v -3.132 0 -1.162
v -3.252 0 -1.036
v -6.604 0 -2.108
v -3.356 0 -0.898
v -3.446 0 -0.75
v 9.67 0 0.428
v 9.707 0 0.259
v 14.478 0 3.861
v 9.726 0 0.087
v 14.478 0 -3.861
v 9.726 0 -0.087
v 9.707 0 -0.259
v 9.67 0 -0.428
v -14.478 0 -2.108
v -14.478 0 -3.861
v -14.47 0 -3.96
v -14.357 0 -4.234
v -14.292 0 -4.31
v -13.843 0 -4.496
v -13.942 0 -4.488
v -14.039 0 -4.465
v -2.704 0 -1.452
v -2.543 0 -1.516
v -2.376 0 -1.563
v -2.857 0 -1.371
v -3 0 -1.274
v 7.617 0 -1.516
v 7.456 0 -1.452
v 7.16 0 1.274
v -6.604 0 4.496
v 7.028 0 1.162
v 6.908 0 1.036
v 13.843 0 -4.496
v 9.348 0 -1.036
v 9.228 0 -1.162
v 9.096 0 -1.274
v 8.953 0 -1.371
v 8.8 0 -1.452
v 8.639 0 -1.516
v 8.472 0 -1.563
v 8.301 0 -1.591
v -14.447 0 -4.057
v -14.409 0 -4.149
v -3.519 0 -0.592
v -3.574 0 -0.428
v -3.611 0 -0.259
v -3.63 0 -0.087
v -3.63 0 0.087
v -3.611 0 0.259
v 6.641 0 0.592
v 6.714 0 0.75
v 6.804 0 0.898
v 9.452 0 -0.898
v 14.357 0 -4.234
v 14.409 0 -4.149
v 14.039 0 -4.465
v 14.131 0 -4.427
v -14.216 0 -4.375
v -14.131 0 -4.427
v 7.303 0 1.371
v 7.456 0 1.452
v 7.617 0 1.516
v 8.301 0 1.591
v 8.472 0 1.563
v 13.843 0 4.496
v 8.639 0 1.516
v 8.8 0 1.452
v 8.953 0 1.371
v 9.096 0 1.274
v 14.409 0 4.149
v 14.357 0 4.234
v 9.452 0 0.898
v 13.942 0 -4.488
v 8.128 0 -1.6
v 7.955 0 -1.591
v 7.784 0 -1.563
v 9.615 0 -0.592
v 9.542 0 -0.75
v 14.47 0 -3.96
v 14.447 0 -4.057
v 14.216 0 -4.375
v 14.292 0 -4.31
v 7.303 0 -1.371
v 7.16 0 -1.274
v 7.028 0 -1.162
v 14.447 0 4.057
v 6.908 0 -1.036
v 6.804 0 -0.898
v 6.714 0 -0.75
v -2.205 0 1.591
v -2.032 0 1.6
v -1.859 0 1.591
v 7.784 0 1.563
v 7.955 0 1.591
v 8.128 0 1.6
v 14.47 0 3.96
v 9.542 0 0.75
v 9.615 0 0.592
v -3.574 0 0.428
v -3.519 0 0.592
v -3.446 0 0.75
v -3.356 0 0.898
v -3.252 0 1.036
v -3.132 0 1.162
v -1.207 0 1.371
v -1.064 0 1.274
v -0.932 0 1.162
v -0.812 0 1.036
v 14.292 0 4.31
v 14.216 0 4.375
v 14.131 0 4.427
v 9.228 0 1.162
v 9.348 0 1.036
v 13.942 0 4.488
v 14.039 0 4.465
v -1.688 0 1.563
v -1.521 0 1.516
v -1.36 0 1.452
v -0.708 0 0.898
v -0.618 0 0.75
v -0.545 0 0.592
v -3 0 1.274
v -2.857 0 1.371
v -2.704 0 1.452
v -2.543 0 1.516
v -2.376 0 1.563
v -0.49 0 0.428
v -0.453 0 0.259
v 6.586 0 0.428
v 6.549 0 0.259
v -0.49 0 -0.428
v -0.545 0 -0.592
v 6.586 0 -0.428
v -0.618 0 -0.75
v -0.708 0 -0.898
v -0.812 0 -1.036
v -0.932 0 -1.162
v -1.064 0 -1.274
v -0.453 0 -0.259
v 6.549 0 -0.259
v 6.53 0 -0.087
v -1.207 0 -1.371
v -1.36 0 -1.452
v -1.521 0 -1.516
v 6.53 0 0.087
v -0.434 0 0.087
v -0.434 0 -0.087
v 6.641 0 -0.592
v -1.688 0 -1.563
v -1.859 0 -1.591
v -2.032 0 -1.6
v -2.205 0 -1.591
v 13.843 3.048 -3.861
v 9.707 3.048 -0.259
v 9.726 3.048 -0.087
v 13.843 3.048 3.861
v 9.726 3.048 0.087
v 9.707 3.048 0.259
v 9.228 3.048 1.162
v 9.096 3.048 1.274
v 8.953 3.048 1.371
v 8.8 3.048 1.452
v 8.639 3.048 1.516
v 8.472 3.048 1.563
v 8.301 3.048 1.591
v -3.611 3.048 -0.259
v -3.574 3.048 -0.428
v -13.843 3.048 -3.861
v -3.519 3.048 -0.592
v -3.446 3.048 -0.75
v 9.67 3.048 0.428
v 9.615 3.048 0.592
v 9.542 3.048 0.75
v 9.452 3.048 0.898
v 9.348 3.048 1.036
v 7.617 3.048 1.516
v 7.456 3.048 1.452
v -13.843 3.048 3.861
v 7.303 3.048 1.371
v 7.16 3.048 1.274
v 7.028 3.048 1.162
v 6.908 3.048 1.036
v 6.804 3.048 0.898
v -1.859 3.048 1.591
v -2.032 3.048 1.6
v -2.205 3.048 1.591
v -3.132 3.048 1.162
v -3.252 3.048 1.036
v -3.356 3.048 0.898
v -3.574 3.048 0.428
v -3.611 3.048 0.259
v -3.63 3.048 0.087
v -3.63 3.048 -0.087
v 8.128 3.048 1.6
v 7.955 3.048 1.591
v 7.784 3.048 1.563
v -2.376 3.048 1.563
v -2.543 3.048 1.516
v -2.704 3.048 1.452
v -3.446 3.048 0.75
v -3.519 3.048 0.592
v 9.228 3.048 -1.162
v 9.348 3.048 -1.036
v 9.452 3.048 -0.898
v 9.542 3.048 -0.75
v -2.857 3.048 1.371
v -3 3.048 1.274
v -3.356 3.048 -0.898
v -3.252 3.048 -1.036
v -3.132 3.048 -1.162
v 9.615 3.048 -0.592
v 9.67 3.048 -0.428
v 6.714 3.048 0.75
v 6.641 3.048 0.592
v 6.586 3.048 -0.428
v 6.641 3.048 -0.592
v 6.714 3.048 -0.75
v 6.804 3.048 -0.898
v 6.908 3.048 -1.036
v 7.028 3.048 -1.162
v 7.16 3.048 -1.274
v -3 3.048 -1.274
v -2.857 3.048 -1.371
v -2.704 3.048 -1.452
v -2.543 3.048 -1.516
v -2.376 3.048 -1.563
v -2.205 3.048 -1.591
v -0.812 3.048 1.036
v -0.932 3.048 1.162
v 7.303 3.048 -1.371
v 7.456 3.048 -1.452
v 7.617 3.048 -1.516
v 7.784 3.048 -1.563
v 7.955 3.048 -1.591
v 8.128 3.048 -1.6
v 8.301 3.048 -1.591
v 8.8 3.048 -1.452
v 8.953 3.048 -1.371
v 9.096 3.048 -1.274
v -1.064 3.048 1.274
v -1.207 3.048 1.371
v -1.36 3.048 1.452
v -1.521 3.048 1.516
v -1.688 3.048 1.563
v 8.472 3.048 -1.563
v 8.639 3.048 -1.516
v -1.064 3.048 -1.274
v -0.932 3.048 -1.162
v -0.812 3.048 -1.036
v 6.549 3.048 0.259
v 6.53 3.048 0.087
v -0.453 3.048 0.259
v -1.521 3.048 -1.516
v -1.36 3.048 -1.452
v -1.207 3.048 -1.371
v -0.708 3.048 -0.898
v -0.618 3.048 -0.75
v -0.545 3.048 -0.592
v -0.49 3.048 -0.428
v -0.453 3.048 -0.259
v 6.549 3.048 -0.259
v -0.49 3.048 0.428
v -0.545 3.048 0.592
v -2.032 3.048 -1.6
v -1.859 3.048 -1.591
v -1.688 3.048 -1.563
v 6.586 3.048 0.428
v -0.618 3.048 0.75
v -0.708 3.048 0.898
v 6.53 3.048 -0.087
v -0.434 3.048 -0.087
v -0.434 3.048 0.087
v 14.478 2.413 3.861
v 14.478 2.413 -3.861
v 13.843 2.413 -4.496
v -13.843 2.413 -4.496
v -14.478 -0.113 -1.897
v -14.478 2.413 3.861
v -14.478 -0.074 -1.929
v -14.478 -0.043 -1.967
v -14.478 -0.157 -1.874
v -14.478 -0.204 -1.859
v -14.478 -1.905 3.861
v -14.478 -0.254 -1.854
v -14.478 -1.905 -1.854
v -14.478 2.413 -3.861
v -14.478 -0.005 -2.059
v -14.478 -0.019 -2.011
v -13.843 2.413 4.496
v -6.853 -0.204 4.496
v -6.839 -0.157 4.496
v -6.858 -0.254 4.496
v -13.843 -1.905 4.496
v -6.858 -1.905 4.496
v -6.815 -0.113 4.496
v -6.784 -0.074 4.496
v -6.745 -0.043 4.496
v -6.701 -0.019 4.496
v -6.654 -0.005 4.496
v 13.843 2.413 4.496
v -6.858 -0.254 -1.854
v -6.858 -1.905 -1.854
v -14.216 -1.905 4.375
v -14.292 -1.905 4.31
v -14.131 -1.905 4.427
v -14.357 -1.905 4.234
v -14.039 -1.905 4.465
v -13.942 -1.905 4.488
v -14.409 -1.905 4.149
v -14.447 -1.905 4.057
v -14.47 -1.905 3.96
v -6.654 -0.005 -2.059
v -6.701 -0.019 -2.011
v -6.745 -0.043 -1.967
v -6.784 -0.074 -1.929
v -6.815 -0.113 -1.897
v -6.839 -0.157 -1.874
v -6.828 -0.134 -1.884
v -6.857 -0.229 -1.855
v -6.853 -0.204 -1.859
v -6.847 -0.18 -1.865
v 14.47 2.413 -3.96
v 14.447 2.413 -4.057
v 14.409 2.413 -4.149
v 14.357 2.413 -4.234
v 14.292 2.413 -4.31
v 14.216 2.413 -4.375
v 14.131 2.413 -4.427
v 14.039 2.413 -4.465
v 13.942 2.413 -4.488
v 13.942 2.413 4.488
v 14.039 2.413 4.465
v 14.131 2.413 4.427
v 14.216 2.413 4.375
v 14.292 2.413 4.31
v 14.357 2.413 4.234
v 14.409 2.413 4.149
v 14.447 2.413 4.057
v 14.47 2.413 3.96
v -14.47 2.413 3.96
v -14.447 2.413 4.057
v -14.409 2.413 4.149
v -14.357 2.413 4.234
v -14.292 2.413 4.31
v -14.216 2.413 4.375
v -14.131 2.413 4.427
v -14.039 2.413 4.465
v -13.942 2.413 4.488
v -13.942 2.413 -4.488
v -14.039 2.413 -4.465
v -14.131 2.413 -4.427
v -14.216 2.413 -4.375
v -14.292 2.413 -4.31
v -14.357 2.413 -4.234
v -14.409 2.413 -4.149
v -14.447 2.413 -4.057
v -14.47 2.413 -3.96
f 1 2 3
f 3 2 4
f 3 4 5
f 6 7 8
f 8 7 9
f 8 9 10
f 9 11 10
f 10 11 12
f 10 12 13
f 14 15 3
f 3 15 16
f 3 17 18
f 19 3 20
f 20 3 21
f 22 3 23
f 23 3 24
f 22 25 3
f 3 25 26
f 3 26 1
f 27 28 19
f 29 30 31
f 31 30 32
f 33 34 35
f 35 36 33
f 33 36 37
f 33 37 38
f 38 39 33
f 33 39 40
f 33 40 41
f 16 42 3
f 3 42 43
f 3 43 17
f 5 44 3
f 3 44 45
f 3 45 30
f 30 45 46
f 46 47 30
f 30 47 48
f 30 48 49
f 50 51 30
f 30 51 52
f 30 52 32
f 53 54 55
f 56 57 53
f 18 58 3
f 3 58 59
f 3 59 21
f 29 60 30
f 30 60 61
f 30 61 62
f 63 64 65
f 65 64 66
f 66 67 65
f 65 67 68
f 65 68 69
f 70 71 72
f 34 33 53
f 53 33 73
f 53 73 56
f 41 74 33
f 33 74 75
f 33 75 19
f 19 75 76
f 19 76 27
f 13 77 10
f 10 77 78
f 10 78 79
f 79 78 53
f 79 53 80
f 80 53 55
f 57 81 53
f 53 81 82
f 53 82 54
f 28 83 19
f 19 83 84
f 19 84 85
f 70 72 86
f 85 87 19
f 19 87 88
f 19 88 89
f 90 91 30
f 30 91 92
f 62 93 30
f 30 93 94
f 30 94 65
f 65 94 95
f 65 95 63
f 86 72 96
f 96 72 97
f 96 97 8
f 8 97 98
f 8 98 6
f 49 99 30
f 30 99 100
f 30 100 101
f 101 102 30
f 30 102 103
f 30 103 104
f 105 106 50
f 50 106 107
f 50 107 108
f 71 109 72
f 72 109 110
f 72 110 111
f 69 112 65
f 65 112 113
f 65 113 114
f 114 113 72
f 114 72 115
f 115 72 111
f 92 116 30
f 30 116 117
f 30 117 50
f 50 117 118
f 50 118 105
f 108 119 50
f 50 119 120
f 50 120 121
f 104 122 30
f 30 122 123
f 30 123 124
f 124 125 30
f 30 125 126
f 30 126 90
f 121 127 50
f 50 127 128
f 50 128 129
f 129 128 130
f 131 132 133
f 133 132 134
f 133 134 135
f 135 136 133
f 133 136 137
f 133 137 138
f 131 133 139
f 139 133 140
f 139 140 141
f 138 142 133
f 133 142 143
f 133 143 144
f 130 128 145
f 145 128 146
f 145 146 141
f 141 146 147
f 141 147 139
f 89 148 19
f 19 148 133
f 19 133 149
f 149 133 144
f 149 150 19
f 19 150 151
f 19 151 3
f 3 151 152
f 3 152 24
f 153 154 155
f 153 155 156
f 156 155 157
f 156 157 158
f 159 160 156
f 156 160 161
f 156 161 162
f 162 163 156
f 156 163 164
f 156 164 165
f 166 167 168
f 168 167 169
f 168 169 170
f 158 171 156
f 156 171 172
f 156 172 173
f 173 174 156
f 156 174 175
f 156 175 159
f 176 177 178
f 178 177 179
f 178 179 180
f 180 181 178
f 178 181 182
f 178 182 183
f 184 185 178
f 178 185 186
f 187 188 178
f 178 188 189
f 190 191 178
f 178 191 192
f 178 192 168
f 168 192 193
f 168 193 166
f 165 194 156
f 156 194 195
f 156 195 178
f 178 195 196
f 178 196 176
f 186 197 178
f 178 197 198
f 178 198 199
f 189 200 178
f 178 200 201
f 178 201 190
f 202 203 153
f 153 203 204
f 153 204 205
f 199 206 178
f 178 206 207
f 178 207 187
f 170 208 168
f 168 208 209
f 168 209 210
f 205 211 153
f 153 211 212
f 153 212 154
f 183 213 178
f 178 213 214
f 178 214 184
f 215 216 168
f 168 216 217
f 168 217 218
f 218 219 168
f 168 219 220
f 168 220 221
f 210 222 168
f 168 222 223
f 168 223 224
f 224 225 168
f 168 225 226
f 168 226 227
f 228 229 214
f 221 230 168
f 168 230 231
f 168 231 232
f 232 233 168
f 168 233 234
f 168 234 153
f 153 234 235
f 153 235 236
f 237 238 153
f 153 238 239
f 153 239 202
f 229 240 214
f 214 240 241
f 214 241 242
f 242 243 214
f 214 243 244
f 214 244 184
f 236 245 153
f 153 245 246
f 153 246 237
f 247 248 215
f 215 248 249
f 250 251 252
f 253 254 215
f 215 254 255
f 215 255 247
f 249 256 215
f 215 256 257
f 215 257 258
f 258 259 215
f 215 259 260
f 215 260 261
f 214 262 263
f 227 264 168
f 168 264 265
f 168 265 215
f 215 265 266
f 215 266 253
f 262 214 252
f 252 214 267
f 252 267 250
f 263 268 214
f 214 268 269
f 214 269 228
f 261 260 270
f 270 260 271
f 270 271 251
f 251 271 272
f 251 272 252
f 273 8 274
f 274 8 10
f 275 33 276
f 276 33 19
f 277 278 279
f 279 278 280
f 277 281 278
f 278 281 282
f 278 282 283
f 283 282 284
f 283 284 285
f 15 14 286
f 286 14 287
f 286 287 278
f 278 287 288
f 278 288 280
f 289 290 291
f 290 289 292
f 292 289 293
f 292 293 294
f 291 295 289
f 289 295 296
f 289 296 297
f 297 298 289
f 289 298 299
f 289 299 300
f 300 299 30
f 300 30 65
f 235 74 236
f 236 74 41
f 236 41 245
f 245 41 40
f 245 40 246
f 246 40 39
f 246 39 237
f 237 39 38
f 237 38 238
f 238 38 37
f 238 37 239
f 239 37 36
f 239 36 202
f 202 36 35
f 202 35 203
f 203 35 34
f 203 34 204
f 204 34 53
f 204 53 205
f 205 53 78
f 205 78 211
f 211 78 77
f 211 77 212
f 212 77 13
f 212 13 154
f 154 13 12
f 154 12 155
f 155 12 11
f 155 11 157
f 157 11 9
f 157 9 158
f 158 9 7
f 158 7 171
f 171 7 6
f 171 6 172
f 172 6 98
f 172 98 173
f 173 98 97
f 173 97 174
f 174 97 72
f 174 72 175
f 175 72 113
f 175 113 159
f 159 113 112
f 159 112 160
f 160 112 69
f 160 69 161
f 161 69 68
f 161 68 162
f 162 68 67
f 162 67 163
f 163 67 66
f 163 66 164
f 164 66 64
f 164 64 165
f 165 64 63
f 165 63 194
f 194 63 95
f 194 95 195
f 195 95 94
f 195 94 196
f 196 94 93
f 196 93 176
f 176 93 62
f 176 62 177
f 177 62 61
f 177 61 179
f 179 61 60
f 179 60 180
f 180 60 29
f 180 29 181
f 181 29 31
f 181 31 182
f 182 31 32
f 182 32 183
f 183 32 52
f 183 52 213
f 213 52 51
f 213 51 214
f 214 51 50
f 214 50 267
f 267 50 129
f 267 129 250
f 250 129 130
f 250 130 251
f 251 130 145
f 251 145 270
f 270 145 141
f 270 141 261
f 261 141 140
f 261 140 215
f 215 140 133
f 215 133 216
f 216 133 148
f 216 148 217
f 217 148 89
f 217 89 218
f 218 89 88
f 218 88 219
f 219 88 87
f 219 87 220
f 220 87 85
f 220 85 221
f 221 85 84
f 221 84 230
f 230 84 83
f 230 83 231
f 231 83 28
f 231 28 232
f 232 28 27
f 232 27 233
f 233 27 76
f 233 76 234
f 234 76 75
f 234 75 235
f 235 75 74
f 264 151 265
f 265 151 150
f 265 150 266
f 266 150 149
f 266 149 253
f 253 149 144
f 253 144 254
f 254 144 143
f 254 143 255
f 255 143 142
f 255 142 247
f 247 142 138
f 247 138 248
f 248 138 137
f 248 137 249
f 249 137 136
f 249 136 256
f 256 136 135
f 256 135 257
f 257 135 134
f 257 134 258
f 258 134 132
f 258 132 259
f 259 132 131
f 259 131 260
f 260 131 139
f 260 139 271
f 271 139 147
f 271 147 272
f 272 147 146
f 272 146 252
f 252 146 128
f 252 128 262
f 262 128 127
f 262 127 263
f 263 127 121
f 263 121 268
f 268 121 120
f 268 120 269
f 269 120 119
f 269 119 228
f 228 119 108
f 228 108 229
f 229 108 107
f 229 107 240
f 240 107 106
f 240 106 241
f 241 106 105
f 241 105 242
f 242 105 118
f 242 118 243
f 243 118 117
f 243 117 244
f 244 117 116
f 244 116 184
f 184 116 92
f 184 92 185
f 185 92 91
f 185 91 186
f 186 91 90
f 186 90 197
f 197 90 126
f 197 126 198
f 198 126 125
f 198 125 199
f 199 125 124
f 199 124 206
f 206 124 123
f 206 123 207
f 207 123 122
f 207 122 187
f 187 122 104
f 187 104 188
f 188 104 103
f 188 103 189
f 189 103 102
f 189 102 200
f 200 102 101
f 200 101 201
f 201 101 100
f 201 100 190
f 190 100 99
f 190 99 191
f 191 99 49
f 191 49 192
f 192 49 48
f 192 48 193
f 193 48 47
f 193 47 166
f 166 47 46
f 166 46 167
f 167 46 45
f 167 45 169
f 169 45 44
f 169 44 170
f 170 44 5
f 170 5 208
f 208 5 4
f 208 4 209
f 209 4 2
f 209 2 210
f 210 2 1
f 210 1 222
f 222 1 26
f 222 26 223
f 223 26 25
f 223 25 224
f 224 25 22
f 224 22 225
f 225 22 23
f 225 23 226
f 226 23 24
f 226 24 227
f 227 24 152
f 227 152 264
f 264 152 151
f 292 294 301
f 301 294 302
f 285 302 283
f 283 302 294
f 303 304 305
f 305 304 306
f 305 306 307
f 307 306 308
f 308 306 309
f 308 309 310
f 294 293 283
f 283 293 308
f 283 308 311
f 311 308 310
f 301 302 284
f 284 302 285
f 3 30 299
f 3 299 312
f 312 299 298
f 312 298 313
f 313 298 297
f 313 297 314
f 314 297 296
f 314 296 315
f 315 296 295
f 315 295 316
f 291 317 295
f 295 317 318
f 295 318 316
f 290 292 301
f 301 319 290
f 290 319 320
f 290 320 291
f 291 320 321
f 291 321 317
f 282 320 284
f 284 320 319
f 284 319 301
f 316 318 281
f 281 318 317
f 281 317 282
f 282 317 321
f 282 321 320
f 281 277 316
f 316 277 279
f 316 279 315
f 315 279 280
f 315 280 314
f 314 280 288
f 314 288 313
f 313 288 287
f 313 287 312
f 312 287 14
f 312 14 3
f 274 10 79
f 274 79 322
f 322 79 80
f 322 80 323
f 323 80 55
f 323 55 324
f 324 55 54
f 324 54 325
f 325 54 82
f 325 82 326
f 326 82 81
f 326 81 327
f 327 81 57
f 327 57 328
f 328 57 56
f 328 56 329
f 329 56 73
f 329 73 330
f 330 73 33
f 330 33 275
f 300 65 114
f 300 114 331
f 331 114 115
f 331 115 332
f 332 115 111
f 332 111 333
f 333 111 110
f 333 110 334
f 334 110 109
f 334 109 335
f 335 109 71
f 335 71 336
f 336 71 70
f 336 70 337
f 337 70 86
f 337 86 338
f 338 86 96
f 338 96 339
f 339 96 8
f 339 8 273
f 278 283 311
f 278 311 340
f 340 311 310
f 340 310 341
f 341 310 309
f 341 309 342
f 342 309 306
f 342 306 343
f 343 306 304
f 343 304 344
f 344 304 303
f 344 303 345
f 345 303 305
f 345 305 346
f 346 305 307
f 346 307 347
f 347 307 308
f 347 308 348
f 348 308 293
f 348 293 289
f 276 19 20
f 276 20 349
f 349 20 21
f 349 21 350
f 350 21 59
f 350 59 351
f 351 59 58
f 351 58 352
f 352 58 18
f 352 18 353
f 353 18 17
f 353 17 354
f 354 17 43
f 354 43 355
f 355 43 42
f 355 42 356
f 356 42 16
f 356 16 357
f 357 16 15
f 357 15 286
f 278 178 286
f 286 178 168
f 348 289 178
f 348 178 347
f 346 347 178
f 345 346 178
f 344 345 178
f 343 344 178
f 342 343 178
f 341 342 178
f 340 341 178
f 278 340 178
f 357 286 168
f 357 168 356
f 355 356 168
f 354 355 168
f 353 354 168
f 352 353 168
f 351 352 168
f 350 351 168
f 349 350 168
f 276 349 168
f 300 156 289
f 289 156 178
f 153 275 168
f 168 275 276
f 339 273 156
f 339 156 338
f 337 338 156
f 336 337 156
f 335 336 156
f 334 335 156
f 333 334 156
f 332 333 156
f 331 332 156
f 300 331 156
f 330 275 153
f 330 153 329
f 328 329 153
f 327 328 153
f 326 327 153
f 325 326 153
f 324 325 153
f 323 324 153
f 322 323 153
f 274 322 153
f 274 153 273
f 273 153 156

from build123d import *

# Parameters (mm, degrees)
SKETCH1_W           = 28.956
SKETCH1_H           = 8.9916
SKETCH1_R           = 1.6002
BOSS_EXTRUDE1_DEPTH = 3.048
SKETCH2_W           = 7.62
SKETCH2_H           = 1.905
BOSS_EXTRUDE2_DEPTH = 6.35
FILLET1_R           = 0.254
FILLET2_R           = 0.635
CHAMFER1_SIZE       = 0.635


with BuildPart() as part:
    # Sketch1 → Boss-Extrude1 (new body)
    with BuildSketch(Plane(origin=(0, 0, 0), x_dir=(1, 0, 0), z_dir=(0, 1, 0))):
        Rectangle(SKETCH1_W, SKETCH1_H)
        with Locations(Location((8.128, 0, 0), (0, 0, 90))):
            Circle(SKETCH1_R, mode=Mode.SUBTRACT)
        with Locations(Location((-2.032, 0, 0), (0, 0, 90))):
            Circle(SKETCH1_R, mode=Mode.SUBTRACT)
    extrude(amount=BOSS_EXTRUDE1_DEPTH)

    # Sketch2 → Boss-Extrude2 (add)
    with BuildSketch(Plane.XY.offset(4.4958)):
        with Locations((-10.668, -0.9525)):
            Rectangle(SKETCH2_W, SKETCH2_H)
    extrude(amount=-BOSS_EXTRUDE2_DEPTH)

    # Fillet1
    fillet1_edges = [part.edges().sort_by_distance(p)[0] for p in [
        (-10.668, 0, -1.8542),
        (-6.858, 0, 1.3208),
    ]]
    fillet(fillet1_edges, radius=FILLET1_R)

    # Fillet2
    fillet2_edges = [part.edges().sort_by_distance(p)[0] for p in [
        (14.478, 1.524, 4.4958),
        (-14.478, 0.5715, 4.4958),
        (-14.478, 1.524, -4.4958),
        (14.478, 1.524, -4.4958),
    ]]
    fillet(fillet2_edges, radius=FILLET2_R)

    # Chamfer1
    chamfer1_edges = [part.edges().sort_by_distance(p)[0] for p in [
        (0, 3.048, -4.4958),
        (14.478, 3.048, 0),
        (-14.478, 3.048, 0),
        (0, 3.048, 4.4958),
        (-14.292012806, 3.048, -4.309812806),
        (-14.292012806, 3.048, 4.309812806),
        (14.292012806, 3.048, 4.309812806),
        (14.292012806, 3.048, -4.309812806),
    ]]
    chamfer(chamfer1_edges, length=CHAMFER1_SIZE)


solid = part.part
